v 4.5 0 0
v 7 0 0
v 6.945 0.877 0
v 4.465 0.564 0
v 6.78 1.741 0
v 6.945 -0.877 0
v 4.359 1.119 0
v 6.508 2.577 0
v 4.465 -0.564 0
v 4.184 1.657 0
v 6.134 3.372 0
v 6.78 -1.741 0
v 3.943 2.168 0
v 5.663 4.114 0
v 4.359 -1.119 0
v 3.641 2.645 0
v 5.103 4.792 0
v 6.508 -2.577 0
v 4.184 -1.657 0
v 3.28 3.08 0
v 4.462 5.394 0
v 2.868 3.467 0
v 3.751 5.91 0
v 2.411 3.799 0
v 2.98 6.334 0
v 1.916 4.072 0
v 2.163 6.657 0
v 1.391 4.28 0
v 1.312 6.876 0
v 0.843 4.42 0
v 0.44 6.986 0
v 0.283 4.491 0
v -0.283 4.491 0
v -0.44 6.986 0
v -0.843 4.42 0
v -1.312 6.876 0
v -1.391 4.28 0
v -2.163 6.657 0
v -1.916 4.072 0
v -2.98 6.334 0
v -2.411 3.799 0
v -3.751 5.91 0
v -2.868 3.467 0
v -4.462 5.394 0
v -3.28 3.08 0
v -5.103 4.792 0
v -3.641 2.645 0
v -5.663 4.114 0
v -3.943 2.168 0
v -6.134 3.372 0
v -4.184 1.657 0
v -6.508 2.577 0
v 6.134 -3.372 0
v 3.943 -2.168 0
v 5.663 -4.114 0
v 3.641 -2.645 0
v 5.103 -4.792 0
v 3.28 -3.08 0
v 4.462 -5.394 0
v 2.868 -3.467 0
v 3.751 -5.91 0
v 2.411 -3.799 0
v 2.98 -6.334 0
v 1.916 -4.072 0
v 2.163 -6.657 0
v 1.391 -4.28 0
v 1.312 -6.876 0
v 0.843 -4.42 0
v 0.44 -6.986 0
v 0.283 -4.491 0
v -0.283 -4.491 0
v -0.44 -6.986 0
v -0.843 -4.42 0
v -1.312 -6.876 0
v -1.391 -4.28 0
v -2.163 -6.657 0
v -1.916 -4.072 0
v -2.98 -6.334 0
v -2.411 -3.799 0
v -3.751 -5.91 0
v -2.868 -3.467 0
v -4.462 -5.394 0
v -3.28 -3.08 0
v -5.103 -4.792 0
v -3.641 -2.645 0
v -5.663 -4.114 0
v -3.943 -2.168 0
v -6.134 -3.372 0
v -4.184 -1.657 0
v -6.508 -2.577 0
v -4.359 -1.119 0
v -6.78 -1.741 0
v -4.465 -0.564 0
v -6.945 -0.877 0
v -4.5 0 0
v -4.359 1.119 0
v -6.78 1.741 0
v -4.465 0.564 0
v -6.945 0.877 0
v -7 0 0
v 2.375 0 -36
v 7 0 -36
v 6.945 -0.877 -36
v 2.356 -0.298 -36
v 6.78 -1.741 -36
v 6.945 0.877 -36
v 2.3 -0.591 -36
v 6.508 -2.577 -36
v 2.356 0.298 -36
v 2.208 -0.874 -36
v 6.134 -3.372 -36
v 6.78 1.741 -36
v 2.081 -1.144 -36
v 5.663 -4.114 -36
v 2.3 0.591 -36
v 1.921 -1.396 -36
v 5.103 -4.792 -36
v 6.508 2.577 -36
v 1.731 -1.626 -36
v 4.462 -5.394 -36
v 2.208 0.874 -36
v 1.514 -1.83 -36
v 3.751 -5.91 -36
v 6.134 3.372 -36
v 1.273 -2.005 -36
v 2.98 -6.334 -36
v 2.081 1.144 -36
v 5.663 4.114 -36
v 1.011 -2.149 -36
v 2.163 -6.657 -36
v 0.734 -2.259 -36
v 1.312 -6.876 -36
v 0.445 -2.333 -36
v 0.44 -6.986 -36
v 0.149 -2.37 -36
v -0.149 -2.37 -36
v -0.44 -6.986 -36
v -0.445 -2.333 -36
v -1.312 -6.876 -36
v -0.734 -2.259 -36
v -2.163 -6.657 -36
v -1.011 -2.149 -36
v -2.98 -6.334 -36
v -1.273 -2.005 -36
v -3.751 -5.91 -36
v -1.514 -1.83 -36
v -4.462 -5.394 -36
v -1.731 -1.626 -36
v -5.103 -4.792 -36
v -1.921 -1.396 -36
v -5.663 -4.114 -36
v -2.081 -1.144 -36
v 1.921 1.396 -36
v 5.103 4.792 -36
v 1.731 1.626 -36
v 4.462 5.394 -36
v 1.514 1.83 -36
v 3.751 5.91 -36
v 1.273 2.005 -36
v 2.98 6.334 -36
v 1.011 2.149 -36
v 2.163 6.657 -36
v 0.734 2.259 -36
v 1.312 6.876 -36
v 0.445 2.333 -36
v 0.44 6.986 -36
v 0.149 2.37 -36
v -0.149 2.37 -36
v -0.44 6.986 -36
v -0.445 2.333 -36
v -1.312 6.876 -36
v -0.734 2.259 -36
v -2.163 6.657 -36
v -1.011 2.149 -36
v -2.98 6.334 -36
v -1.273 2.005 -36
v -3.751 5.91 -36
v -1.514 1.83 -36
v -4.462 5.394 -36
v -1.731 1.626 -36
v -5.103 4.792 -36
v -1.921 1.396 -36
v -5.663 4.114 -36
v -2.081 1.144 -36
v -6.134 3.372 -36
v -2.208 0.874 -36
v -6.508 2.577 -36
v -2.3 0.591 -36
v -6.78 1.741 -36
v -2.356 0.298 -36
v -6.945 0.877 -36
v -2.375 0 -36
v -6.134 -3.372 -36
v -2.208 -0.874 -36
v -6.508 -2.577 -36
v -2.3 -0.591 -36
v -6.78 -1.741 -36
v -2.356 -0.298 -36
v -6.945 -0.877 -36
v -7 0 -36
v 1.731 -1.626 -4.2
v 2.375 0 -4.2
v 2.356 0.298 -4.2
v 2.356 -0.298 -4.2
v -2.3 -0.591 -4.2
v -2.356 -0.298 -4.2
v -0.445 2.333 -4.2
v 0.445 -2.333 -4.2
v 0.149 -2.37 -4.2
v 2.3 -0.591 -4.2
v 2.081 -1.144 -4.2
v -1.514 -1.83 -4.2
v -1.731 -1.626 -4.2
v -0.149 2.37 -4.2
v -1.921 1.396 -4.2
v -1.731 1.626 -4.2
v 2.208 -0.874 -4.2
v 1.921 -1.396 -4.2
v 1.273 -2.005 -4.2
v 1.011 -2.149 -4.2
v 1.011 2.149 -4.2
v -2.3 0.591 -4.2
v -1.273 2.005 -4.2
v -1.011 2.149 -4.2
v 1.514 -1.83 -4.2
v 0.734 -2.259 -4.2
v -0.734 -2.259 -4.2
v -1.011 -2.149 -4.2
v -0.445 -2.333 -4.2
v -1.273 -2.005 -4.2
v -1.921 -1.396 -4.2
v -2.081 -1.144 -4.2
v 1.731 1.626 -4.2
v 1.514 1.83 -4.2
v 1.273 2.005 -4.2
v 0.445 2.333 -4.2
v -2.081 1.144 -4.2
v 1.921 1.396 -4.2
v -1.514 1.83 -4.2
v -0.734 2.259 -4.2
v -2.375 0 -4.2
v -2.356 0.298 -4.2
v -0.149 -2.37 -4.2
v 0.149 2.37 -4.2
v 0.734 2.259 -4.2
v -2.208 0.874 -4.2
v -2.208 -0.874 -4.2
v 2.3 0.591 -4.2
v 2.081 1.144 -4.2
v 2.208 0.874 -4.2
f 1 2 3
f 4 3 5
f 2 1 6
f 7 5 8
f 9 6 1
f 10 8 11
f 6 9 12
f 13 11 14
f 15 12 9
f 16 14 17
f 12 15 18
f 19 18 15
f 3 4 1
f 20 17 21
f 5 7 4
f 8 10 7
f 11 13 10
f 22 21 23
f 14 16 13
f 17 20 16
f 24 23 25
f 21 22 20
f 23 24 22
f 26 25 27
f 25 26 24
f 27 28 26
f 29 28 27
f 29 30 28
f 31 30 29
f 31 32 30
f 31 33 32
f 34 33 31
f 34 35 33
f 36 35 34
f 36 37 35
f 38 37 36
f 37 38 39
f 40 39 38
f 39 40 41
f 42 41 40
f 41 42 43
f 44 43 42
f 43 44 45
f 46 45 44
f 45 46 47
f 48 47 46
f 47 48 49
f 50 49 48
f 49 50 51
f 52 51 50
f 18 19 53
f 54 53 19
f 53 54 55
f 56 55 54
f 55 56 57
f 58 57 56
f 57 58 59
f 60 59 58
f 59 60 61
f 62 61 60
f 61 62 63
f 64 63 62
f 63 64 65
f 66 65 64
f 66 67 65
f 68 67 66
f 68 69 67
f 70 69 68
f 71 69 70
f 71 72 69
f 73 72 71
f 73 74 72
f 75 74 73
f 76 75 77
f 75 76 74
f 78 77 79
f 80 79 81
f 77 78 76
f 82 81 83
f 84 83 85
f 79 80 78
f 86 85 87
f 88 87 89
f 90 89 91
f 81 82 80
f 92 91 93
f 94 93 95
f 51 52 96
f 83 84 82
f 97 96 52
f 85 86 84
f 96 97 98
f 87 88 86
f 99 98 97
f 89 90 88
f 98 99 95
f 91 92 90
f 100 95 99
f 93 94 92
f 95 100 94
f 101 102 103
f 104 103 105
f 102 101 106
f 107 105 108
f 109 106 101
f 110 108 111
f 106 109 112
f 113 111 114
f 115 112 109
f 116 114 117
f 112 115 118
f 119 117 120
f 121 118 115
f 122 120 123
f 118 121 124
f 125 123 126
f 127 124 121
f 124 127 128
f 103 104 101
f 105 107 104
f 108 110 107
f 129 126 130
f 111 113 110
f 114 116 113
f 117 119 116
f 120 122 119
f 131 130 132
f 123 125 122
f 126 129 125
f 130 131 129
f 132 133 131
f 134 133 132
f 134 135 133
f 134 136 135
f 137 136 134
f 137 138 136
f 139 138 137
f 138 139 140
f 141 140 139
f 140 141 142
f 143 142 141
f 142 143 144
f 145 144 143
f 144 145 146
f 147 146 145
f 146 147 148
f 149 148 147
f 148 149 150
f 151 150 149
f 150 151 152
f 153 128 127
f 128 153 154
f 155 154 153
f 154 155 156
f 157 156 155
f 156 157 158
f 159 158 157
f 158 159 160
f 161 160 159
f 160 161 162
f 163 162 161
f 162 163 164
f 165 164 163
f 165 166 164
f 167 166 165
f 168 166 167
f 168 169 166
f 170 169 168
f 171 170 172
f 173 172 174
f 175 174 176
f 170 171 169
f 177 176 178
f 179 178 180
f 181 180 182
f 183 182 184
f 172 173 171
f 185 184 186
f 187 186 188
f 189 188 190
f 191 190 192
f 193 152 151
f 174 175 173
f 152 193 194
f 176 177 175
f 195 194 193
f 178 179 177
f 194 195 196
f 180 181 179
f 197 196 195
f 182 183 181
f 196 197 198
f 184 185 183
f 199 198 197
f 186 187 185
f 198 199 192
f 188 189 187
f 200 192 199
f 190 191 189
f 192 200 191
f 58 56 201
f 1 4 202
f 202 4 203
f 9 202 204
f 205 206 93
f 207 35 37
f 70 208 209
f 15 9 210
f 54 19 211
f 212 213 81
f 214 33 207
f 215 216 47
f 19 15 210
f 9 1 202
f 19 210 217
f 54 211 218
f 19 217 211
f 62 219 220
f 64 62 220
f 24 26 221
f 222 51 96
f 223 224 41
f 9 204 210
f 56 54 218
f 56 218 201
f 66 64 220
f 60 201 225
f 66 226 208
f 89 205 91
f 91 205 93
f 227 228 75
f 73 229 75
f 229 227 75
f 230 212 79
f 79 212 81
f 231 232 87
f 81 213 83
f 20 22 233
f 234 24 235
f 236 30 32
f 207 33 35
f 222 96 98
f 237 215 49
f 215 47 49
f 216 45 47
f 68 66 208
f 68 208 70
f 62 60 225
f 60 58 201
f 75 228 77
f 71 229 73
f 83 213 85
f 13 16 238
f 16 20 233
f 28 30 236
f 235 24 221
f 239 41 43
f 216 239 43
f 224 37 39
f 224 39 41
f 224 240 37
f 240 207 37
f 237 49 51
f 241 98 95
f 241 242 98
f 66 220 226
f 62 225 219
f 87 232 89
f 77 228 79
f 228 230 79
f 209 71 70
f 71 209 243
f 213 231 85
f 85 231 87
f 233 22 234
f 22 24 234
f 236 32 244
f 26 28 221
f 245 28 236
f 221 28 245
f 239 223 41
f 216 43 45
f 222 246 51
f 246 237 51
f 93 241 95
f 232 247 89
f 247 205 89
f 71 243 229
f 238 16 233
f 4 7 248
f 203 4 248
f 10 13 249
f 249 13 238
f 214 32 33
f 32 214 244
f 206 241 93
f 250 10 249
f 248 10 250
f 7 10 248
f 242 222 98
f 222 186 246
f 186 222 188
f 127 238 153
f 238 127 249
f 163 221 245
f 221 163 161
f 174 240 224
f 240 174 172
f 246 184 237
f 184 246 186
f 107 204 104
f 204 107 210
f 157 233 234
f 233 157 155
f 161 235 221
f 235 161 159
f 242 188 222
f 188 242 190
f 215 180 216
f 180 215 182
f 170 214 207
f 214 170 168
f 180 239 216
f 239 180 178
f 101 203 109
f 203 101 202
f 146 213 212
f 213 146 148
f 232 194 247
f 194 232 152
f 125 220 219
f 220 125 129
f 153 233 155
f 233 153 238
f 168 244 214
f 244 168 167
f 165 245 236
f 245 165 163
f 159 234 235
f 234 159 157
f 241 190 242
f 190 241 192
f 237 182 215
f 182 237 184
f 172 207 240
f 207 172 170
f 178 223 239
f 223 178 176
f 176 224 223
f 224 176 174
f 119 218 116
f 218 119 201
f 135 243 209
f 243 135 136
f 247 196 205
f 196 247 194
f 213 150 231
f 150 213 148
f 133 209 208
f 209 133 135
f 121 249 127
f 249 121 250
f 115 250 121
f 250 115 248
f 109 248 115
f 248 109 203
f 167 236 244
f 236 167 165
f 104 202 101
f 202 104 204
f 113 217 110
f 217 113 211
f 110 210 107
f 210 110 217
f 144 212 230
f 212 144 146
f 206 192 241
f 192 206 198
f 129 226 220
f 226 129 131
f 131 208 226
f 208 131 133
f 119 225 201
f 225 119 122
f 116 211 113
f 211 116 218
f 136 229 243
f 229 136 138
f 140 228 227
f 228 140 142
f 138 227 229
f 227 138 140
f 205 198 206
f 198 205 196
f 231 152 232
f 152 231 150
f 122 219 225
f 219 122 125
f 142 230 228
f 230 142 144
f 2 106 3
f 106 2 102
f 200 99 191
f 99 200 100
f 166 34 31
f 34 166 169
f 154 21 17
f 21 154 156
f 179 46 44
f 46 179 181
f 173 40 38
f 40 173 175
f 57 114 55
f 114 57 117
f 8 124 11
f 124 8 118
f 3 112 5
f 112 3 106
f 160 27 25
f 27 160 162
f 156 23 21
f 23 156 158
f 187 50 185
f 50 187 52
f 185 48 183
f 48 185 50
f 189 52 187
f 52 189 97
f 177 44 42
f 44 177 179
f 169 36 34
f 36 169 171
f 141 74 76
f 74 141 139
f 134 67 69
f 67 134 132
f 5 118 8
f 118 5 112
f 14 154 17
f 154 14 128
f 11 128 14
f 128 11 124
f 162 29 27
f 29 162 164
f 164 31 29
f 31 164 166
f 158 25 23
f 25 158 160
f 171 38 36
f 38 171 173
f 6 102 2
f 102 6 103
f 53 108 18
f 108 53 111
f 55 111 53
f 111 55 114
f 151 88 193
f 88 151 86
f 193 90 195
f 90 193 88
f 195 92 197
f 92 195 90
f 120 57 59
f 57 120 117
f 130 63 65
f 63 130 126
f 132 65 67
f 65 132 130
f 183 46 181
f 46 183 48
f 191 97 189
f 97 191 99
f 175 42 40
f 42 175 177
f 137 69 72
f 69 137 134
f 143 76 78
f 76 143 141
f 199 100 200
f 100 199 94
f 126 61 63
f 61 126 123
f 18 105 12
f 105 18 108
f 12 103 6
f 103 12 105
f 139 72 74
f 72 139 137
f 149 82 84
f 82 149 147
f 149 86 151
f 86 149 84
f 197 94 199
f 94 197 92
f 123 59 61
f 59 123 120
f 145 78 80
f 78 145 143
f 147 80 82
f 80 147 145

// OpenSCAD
$fn = 50;


difference() {
	union() {
		translate(v = [0, 0, -36.0000000000]) {
			cylinder(h = 36, r = 7.0000000000);
		}
		cylinder(h = 0, r = 17.0000000000);
	}
	union() {
		translate(v = [0, 0, 0]) {
			rotate(a = [0, 0, 0]) {
				difference() {
					union() {
						#translate(v = [0, 0, -36.0000000000]) {
							cylinder(h = 36, r = 2.2500000000);
						}
						#translate(v = [0, 0, -4.2000000000]) {
							cylinder(h = 4.2000000000, r = 7.0000000000, r1 = 2.3750000000, r2 = 4.5000000000);
						}
						#translate(v = [0, 0, -36.0000000000]) {
							cylinder(h = 36, r = 2.3750000000);
						}
						#translate(v = [0, 0, -36.0000000000]) {
							cylinder(h = 36, r = 2.2500000000);
						}
					}
					union();
				}
			}
		}
	}
}
